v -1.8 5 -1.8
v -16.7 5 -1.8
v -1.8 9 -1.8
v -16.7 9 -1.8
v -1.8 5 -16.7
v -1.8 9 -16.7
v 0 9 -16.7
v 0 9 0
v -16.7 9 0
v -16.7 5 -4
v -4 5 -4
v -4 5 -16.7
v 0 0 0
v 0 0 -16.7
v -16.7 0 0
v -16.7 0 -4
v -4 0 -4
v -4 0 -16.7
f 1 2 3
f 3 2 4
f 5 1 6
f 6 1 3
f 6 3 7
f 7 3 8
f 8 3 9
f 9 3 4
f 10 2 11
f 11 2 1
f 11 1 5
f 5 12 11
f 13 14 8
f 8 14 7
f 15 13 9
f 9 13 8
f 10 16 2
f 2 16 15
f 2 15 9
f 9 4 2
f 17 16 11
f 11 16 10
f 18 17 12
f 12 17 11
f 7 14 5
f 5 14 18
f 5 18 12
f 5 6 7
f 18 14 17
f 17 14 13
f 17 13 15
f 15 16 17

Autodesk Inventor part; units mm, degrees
ref_plane "YZ Plane" through (0, 0, 0) normal (1, 0, 0) x (0, 1, 0)
ref_plane "XZ Plane" through (0, 0, 0) normal (0, 1, 0) x (-1, 0, 0)
ref_plane "XY Plane" through (0, 0, 0) normal (0, 0, 1) x (1, 0, 0)
sketch "Sketch1" plane through (0, 0, 0) normal (0, 1, 0) x (-1, 0, 0)
  line L0 (0, 0) -> (16.7, 0)
  line L1 (16.7, 0) -> (16.7, -4)
  line L2 (16.7, -4) -> (4, -4)
  line L3 (4, -4) -> (4, -16.7)
  line L4 (4, -16.7) -> (0, -16.7)
  line L5 (0, -16.7) -> (0, 0)
  dimension "d0" = 16.7
  dimension "d1" = 4
  dimension "d2" = 4
  dimension "d3" = 16.7
extrude "Extrusion1" add sketch "Sketch1" along normal blind 5
sketch "Sketch2" plane through (0, 5, 0) normal (0, 1, 0) x (1, 0, 0)
  line L0 (-16.7, 4) -> (-16.7, 0) projected
  line L1 (-16.7, 0) -> (-16.7, 1.8)
  line L2 (-16.7, 1.8) -> (-1.8, 1.8)
  line L3 (-1.8, 1.8) -> (-1.8, 16.7)
  line L4 (-1.8, 16.7) -> (0, 16.7)
  line L5 (-16.7, 0) -> (0, 0) projected
  line L6 (0, 16.7) -> (0, 0)
  line L7 (-16.7, 0) -> (0, 0)
  dimension "d6" = 1.8
  dimension "d7" = 1.8
  dimension "d8" = 16.7
extrude "Extrusion2" add sketch "Sketch2" along normal blind 4
properties part number "TestingPlatform_stackFeet01"
